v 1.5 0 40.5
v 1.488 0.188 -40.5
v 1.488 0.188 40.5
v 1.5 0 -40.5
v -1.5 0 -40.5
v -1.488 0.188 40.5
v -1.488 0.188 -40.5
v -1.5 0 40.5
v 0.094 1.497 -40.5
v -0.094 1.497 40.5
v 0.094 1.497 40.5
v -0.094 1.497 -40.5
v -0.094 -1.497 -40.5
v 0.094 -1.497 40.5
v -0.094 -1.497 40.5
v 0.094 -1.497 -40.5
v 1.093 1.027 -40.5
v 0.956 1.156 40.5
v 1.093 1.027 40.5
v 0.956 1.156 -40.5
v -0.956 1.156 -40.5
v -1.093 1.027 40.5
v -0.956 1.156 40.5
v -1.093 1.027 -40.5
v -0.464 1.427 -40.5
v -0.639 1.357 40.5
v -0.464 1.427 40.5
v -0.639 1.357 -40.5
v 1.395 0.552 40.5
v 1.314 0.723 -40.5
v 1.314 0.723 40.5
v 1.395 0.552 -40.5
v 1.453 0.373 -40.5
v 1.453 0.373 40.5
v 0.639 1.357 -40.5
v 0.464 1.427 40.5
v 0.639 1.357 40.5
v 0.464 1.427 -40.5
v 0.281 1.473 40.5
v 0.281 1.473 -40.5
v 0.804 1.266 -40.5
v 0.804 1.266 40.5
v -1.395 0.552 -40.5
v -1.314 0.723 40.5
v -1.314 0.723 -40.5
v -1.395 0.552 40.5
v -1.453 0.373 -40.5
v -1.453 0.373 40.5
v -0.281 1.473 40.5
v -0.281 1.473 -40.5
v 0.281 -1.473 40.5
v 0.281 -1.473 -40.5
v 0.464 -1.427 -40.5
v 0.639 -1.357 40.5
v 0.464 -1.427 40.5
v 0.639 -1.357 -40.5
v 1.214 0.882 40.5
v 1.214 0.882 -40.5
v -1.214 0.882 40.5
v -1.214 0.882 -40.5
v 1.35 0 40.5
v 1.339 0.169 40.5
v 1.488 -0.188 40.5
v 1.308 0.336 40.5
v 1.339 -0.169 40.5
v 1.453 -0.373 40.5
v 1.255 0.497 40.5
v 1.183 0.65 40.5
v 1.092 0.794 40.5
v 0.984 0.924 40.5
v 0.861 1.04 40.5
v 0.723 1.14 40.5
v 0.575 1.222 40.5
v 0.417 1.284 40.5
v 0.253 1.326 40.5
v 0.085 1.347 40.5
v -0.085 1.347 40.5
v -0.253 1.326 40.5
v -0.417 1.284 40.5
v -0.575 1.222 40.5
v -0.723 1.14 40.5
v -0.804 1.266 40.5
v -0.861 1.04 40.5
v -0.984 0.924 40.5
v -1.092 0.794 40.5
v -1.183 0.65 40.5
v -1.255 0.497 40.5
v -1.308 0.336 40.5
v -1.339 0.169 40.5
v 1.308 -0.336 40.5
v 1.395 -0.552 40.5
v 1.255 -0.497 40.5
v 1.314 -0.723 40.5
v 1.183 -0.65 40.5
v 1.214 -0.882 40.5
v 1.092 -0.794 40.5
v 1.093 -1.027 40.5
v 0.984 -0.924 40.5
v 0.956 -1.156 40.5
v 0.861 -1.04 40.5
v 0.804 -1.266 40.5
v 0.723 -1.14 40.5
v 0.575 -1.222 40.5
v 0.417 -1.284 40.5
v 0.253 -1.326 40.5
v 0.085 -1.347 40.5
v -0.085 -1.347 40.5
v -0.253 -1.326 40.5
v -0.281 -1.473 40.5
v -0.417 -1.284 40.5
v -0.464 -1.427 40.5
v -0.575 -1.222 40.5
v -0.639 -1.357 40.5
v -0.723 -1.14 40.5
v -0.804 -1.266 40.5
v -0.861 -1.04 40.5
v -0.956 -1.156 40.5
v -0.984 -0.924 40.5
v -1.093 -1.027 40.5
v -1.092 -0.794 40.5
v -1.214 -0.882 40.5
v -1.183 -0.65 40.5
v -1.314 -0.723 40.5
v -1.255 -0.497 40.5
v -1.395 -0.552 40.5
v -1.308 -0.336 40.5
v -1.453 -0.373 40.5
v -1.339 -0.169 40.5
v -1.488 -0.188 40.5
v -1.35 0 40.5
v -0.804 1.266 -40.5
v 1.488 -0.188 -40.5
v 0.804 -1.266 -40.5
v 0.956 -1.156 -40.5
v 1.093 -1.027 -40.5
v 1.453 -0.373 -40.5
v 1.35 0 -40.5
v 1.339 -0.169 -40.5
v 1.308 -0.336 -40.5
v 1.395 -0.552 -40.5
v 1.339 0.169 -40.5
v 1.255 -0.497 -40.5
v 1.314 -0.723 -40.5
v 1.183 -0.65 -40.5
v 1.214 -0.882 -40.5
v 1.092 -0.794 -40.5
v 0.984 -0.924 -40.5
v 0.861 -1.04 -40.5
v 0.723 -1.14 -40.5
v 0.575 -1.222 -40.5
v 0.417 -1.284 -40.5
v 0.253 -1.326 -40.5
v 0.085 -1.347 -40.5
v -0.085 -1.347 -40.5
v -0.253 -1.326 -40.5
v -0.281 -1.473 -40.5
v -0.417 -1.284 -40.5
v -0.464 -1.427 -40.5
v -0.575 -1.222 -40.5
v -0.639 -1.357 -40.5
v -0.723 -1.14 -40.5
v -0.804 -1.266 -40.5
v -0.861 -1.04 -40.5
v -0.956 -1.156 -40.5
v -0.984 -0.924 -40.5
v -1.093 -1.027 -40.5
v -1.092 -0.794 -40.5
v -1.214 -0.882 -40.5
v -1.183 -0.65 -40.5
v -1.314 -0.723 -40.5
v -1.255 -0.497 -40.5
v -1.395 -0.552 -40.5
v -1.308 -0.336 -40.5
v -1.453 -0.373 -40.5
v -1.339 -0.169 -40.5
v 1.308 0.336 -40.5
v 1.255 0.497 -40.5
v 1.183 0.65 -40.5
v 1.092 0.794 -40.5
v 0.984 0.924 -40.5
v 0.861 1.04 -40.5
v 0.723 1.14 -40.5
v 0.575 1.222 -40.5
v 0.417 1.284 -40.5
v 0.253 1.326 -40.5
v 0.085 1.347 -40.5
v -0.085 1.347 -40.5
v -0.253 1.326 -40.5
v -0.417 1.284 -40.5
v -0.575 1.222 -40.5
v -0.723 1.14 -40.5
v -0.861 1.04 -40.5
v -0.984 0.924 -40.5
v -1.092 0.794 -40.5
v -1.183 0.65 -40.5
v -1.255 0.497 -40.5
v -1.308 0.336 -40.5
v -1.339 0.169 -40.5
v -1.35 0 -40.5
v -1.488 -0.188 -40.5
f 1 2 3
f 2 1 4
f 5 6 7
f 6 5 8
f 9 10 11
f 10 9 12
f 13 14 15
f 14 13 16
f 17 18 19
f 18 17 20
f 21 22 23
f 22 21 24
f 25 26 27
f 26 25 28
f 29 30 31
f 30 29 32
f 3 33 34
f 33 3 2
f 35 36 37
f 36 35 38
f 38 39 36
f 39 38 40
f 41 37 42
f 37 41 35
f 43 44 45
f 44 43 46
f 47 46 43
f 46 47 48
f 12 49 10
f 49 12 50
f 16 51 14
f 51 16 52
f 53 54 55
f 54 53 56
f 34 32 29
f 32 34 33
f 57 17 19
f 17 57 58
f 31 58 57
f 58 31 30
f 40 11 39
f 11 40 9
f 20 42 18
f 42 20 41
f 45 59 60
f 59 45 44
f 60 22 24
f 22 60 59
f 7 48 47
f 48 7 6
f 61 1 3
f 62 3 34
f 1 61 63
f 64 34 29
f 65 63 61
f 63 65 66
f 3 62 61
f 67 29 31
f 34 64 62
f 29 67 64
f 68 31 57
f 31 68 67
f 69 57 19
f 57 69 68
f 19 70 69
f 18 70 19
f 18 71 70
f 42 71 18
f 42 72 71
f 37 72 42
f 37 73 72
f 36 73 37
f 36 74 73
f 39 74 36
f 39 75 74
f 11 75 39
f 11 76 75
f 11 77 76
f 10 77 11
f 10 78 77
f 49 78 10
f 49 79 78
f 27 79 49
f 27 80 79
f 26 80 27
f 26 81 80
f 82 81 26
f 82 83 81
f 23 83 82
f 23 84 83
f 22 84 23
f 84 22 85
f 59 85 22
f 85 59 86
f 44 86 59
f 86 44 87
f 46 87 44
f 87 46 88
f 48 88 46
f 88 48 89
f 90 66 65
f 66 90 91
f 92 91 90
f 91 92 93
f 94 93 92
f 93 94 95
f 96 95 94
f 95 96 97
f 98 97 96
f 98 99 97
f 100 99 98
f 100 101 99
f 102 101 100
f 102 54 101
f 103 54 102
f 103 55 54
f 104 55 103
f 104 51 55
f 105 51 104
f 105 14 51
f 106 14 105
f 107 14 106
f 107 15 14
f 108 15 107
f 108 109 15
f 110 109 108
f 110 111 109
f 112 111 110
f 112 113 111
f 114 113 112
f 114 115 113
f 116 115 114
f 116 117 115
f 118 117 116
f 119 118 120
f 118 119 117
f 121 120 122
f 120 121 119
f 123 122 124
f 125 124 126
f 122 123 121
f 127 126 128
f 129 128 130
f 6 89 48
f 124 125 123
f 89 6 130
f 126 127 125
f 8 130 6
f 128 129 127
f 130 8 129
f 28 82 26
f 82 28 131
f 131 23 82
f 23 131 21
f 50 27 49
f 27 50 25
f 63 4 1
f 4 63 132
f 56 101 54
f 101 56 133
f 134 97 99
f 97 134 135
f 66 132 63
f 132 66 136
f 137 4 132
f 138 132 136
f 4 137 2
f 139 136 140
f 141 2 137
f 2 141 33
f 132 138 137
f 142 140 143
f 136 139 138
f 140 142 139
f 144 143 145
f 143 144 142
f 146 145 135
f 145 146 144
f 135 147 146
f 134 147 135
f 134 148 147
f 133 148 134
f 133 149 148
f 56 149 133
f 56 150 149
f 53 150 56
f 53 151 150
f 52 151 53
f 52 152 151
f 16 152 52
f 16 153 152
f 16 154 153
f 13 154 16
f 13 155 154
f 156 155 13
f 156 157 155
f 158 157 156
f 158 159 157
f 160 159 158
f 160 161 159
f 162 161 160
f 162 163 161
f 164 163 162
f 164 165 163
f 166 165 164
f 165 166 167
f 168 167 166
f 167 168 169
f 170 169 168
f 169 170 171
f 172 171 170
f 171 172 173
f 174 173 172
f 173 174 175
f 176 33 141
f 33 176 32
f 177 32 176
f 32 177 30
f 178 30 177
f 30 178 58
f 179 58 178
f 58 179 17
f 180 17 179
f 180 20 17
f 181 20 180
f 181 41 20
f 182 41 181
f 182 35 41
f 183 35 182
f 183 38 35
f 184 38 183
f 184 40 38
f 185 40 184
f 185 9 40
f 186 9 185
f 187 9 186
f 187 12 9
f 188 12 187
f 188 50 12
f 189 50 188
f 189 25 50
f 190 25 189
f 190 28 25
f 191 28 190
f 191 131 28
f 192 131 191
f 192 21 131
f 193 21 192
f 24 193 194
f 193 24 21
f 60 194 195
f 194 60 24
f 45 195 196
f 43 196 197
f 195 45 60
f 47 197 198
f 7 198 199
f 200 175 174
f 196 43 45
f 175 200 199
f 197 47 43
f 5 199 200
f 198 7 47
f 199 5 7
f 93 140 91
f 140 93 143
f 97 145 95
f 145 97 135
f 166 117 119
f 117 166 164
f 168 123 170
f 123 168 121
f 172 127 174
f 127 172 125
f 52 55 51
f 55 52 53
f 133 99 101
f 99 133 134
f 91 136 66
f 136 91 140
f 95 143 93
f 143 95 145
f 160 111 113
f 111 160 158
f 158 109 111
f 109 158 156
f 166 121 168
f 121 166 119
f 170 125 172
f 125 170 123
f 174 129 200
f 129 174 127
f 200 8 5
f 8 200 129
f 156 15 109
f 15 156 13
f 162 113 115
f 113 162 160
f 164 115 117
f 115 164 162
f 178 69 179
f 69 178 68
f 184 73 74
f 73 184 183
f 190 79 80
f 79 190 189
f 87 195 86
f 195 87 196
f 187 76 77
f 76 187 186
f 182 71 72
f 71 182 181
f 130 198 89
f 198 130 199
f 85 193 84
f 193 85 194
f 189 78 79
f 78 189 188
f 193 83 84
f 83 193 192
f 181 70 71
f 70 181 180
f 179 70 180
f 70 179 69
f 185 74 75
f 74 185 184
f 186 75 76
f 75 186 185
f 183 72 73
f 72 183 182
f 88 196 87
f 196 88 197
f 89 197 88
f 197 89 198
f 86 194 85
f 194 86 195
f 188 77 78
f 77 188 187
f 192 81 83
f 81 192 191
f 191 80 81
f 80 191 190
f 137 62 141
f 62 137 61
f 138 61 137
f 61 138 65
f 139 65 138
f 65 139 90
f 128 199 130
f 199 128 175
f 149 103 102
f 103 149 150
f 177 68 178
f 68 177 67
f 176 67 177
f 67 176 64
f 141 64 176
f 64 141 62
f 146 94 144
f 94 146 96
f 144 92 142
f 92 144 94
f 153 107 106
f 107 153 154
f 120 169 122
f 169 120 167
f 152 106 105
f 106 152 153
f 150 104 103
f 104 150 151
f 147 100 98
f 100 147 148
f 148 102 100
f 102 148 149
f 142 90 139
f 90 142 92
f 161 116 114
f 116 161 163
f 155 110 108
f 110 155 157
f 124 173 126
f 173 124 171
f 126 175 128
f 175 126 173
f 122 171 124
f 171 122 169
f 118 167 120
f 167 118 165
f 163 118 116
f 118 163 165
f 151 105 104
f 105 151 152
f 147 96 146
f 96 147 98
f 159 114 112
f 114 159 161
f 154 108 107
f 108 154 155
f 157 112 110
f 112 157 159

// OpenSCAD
$fn = 50;


difference() {
	union() {
		translate(v = [0, 0, -40.5000000000]) {
			cylinder(h = 81, r = 1.5000000000);
		}
	}
	union() {
		translate(v = [0, 0, -100.0000000000]) {
			cylinder(h = 200, r = 1.3500000000);
		}
	}
}
